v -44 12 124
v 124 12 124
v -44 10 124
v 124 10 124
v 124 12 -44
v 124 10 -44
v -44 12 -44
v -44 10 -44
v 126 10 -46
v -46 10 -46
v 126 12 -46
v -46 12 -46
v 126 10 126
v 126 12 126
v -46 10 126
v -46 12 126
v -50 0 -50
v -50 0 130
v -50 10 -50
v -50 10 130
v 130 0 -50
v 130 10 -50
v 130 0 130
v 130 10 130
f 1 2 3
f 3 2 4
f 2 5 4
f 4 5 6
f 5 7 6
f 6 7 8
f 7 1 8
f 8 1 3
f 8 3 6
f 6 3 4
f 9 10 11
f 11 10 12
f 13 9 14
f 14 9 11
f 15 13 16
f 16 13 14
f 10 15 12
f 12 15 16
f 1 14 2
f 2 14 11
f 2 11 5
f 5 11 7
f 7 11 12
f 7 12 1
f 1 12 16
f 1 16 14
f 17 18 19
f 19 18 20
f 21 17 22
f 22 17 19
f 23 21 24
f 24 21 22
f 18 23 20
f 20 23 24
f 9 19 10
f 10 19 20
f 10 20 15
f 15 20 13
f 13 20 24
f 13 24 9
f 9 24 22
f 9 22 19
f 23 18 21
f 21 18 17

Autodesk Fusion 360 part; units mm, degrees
sketch "Sketch1" plane through (0, 0, 0) normal (0, 1, 0) x (1, 0, 0)
  line L0 (-50, 50) -> (130, 50)
  line L1 (130, 50) -> (130, -130)
  line L2 (130, -130) -> (-50, -130)
  line L3 (-50, -130) -> (-50, 50)
  dimension "d1" = 180
  dimension "d2" = 180
extrude "Extrude1" add sketch "Sketch1" along normal blind 10
sketch "Sketch2" plane through (0, 10, 0) normal (0, 1, 0) x (-1, 0, 0)
  line L0 (50, 130) -> (-130, 130)
  line L1 (-130, 130) -> (-130, -50)
  line L2 (-130, -50) -> (50, -50)
  line L3 (50, -50) -> (50, 130)
  line L4 (46, 126) -> (-126, 126)
  line L5 (-126, 126) -> (-126, -46)
  line L6 (-126, -46) -> (46, -46)
  line L7 (46, -46) -> (46, 126)
  dimension "d5" = 172
  dimension "d6" = 172
extrude "Extrude2" add sketch "Sketch2" along normal blind 2 contours L4 L5 L6 L7
sketch "Sketch3" plane through (0, 12, 0) normal (0, 1, 0) x (-1, 0, 0)
  line L0 (46, -46) -> (46, 126)
  line L1 (46, 126) -> (-126, 126)
  line L2 (-126, 126) -> (-126, -46)
  line L3 (-126, -46) -> (46, -46)
  line L4 (44, 124) -> (-124, 124)
  line L5 (-124, 124) -> (-124, -44)
  line L6 (-124, -44) -> (44, -44)
  line L7 (44, -44) -> (44, 124)
extrude "Extrude3" cut sketch "Sketch3" against normal blind 2 contours L4 L5 L6 L7
